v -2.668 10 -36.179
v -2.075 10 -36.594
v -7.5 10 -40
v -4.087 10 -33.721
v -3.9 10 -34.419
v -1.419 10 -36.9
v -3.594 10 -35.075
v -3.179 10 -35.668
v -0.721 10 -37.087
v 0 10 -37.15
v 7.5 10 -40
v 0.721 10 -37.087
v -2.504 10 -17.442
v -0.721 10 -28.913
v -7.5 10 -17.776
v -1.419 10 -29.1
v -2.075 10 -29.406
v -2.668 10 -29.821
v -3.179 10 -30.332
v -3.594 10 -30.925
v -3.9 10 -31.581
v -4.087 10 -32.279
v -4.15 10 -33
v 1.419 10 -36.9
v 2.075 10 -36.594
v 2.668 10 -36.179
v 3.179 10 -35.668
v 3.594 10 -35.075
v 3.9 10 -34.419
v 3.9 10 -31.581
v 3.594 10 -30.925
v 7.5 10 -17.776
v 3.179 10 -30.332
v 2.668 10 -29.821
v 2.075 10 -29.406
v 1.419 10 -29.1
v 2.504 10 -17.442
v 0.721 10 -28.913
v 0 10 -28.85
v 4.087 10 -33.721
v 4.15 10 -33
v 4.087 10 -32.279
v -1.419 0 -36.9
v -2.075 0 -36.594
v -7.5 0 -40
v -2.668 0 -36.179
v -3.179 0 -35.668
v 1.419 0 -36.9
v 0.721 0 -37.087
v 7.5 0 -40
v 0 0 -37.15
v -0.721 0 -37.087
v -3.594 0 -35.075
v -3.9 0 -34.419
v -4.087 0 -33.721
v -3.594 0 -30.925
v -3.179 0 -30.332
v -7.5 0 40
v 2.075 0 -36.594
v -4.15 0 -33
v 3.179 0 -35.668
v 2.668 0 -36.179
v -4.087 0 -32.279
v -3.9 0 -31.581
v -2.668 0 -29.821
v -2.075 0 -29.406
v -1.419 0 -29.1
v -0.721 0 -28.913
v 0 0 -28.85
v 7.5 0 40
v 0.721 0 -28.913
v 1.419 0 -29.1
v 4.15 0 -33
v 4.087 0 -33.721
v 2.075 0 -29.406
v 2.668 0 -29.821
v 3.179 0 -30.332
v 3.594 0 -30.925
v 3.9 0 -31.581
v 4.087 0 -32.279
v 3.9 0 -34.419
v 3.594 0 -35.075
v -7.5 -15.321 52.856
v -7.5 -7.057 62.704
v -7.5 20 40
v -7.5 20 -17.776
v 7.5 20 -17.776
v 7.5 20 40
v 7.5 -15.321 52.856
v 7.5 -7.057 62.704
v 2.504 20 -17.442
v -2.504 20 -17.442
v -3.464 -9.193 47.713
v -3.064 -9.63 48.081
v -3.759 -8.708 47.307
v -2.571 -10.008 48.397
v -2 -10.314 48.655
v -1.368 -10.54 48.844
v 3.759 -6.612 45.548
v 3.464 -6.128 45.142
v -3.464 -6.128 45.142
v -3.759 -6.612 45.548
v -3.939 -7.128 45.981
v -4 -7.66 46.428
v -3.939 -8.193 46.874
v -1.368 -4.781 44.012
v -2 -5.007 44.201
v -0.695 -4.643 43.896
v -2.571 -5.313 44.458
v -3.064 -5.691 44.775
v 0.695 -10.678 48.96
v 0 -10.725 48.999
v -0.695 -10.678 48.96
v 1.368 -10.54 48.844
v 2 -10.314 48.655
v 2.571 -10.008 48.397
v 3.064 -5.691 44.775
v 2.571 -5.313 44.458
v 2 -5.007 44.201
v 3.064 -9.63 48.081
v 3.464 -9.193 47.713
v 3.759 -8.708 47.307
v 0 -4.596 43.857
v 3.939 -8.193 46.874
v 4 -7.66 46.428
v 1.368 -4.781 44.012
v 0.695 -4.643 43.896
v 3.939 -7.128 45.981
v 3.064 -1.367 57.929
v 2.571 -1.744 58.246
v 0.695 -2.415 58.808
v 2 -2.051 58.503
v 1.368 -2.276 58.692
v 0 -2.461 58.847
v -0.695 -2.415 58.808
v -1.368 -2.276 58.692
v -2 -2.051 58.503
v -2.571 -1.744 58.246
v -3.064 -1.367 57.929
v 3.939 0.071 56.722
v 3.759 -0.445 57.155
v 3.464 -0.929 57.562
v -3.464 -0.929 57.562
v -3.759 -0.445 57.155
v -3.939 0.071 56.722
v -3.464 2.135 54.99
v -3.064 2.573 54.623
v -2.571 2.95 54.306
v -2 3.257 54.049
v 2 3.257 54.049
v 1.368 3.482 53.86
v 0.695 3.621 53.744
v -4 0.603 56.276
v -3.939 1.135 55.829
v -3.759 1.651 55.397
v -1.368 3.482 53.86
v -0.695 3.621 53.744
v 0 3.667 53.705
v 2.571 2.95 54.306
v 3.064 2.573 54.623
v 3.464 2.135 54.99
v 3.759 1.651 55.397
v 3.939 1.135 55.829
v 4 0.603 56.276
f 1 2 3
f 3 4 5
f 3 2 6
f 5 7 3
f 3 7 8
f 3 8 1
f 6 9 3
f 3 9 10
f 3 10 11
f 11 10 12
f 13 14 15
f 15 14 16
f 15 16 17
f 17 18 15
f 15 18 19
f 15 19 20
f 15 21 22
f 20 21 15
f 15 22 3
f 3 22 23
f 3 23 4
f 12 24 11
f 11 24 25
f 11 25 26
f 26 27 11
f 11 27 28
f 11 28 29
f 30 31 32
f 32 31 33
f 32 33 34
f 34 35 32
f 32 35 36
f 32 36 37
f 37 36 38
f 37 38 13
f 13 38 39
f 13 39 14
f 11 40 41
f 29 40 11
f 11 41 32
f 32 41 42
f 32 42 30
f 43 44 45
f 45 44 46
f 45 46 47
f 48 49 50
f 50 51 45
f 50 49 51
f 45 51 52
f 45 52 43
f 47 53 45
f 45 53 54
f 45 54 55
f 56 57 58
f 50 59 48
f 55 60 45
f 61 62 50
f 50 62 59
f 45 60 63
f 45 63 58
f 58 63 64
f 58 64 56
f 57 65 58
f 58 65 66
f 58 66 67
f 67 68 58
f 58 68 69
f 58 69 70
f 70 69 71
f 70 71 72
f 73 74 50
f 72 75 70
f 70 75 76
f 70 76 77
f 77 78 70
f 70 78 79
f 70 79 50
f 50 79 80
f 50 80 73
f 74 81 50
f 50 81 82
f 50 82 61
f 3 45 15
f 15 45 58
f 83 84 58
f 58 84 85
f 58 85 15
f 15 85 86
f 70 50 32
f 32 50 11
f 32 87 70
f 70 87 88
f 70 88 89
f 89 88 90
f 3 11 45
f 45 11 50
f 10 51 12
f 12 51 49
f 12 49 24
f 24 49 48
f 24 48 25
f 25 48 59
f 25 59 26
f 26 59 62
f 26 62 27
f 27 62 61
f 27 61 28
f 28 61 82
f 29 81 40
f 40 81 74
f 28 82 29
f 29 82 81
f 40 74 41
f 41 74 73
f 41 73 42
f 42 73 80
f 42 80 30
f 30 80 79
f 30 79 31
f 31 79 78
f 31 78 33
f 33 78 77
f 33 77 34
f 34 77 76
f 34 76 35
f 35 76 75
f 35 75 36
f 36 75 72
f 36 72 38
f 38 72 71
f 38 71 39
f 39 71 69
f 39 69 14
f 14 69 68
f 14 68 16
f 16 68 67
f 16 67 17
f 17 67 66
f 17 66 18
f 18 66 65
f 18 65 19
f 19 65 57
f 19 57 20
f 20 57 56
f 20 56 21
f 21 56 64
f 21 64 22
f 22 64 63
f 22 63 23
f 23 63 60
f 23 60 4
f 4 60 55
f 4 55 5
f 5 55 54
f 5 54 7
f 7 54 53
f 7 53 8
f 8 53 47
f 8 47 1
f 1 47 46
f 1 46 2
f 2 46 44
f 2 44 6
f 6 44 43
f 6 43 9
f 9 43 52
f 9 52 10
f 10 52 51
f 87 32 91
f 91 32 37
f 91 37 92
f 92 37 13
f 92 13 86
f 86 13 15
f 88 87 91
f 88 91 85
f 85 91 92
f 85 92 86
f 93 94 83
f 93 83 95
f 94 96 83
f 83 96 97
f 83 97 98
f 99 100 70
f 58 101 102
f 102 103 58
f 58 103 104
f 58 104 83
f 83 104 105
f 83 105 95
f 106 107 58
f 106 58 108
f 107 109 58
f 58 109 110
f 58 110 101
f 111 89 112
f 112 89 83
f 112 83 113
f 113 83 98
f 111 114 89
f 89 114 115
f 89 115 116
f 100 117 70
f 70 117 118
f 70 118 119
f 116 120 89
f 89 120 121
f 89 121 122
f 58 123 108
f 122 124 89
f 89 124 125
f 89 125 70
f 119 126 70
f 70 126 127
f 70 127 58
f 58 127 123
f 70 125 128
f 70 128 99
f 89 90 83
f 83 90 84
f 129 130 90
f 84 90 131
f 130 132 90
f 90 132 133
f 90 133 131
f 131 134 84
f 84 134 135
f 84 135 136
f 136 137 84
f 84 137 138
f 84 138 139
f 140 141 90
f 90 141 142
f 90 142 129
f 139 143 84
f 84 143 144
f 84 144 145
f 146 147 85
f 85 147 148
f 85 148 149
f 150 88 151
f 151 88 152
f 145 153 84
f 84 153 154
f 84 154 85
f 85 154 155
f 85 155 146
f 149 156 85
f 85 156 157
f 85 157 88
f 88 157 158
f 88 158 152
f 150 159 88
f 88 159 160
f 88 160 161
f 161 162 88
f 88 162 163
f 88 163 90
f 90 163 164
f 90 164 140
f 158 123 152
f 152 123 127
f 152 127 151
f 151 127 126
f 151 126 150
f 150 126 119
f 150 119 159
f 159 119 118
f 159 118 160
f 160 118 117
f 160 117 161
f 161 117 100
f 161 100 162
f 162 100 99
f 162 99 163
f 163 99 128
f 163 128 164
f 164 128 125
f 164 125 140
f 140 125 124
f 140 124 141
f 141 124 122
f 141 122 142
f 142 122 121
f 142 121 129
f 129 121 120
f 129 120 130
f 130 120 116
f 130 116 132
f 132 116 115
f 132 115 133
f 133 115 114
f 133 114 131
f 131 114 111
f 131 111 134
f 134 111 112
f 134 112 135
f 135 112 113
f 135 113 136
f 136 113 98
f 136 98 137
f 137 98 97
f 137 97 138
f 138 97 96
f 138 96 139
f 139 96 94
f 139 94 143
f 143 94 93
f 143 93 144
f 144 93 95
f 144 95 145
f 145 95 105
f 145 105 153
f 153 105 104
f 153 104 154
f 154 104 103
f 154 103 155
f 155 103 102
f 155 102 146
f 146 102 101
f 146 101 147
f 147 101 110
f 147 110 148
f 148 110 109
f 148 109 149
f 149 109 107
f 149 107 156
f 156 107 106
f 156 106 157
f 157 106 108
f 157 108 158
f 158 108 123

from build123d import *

# Parameters (mm, degrees)
SKETCH1_W           = 15
SKETCH1_H           = 80
SKETCH1_R           = 4.15
BOSS_EXTRUDE1_DEPTH = 10
BOSS_EXTRUDE2_DEPTH = 10
BOSS_EXTRUDE4_DEPTH = 15
SKETCH11_R          = 4
CUT_EXTRUDE5_DEPTH  = 31.247894791


with BuildPart() as part:
    # Sketch1 → Boss-Extrude1 (new body)
    with BuildSketch(Plane(origin=(0, 0, 0), x_dir=(1, 0, 0), z_dir=(0, 1, 0))):
        Rectangle(SKETCH1_W, SKETCH1_H)
        with Locations((0, 33)):
            Circle(SKETCH1_R, mode=Mode.SUBTRACT)
    extrude(amount=BOSS_EXTRUDE1_DEPTH)

    # Sketch2 → Boss-Extrude2 (add)
    with BuildSketch(Plane(origin=(0, 10, 0), x_dir=(1, 0, 0), z_dir=(0, 1, 0))):
        with BuildLine():
            Line((7.5, 17.775942217), (7.5, -40))
            Line((7.5, -40), (-7.5, -40))
            Line((-7.5, -40), (-7.5, 17.775942217))
            ThreePointArc((-7.5, 17.775942217), (0, 17.4), (7.5, 17.775942217))
        make_face()
    extrude(amount=BOSS_EXTRUDE2_DEPTH)

    # Sketch10 → Boss-Extrude4 (add)
    with BuildSketch(Plane(origin=(7.5, 0, 0), x_dir=(0, 0, -1), z_dir=(1, 0, 0))):
        Polygon((-40, 0), (-52.855752194, -15.320888862), (-62.703829724, -7.057370639), (-40, 20), align=None)
    extrude(amount=-BOSS_EXTRUDE4_DEPTH)

    # Sketch11 → Cut-Extrude5 (cut, through all)
    with BuildSketch(Plane(origin=(0, 19.69615506, 23.472963553), x_dir=(-1, 0, 0), z_dir=(0, -0.64278761, -0.766044443))):
        with Locations((0, -35.711504387)):
            Circle(SKETCH11_R)
    extrude(amount=-CUT_EXTRUDE5_DEPTH, mode=Mode.SUBTRACT)


solid = part.part
